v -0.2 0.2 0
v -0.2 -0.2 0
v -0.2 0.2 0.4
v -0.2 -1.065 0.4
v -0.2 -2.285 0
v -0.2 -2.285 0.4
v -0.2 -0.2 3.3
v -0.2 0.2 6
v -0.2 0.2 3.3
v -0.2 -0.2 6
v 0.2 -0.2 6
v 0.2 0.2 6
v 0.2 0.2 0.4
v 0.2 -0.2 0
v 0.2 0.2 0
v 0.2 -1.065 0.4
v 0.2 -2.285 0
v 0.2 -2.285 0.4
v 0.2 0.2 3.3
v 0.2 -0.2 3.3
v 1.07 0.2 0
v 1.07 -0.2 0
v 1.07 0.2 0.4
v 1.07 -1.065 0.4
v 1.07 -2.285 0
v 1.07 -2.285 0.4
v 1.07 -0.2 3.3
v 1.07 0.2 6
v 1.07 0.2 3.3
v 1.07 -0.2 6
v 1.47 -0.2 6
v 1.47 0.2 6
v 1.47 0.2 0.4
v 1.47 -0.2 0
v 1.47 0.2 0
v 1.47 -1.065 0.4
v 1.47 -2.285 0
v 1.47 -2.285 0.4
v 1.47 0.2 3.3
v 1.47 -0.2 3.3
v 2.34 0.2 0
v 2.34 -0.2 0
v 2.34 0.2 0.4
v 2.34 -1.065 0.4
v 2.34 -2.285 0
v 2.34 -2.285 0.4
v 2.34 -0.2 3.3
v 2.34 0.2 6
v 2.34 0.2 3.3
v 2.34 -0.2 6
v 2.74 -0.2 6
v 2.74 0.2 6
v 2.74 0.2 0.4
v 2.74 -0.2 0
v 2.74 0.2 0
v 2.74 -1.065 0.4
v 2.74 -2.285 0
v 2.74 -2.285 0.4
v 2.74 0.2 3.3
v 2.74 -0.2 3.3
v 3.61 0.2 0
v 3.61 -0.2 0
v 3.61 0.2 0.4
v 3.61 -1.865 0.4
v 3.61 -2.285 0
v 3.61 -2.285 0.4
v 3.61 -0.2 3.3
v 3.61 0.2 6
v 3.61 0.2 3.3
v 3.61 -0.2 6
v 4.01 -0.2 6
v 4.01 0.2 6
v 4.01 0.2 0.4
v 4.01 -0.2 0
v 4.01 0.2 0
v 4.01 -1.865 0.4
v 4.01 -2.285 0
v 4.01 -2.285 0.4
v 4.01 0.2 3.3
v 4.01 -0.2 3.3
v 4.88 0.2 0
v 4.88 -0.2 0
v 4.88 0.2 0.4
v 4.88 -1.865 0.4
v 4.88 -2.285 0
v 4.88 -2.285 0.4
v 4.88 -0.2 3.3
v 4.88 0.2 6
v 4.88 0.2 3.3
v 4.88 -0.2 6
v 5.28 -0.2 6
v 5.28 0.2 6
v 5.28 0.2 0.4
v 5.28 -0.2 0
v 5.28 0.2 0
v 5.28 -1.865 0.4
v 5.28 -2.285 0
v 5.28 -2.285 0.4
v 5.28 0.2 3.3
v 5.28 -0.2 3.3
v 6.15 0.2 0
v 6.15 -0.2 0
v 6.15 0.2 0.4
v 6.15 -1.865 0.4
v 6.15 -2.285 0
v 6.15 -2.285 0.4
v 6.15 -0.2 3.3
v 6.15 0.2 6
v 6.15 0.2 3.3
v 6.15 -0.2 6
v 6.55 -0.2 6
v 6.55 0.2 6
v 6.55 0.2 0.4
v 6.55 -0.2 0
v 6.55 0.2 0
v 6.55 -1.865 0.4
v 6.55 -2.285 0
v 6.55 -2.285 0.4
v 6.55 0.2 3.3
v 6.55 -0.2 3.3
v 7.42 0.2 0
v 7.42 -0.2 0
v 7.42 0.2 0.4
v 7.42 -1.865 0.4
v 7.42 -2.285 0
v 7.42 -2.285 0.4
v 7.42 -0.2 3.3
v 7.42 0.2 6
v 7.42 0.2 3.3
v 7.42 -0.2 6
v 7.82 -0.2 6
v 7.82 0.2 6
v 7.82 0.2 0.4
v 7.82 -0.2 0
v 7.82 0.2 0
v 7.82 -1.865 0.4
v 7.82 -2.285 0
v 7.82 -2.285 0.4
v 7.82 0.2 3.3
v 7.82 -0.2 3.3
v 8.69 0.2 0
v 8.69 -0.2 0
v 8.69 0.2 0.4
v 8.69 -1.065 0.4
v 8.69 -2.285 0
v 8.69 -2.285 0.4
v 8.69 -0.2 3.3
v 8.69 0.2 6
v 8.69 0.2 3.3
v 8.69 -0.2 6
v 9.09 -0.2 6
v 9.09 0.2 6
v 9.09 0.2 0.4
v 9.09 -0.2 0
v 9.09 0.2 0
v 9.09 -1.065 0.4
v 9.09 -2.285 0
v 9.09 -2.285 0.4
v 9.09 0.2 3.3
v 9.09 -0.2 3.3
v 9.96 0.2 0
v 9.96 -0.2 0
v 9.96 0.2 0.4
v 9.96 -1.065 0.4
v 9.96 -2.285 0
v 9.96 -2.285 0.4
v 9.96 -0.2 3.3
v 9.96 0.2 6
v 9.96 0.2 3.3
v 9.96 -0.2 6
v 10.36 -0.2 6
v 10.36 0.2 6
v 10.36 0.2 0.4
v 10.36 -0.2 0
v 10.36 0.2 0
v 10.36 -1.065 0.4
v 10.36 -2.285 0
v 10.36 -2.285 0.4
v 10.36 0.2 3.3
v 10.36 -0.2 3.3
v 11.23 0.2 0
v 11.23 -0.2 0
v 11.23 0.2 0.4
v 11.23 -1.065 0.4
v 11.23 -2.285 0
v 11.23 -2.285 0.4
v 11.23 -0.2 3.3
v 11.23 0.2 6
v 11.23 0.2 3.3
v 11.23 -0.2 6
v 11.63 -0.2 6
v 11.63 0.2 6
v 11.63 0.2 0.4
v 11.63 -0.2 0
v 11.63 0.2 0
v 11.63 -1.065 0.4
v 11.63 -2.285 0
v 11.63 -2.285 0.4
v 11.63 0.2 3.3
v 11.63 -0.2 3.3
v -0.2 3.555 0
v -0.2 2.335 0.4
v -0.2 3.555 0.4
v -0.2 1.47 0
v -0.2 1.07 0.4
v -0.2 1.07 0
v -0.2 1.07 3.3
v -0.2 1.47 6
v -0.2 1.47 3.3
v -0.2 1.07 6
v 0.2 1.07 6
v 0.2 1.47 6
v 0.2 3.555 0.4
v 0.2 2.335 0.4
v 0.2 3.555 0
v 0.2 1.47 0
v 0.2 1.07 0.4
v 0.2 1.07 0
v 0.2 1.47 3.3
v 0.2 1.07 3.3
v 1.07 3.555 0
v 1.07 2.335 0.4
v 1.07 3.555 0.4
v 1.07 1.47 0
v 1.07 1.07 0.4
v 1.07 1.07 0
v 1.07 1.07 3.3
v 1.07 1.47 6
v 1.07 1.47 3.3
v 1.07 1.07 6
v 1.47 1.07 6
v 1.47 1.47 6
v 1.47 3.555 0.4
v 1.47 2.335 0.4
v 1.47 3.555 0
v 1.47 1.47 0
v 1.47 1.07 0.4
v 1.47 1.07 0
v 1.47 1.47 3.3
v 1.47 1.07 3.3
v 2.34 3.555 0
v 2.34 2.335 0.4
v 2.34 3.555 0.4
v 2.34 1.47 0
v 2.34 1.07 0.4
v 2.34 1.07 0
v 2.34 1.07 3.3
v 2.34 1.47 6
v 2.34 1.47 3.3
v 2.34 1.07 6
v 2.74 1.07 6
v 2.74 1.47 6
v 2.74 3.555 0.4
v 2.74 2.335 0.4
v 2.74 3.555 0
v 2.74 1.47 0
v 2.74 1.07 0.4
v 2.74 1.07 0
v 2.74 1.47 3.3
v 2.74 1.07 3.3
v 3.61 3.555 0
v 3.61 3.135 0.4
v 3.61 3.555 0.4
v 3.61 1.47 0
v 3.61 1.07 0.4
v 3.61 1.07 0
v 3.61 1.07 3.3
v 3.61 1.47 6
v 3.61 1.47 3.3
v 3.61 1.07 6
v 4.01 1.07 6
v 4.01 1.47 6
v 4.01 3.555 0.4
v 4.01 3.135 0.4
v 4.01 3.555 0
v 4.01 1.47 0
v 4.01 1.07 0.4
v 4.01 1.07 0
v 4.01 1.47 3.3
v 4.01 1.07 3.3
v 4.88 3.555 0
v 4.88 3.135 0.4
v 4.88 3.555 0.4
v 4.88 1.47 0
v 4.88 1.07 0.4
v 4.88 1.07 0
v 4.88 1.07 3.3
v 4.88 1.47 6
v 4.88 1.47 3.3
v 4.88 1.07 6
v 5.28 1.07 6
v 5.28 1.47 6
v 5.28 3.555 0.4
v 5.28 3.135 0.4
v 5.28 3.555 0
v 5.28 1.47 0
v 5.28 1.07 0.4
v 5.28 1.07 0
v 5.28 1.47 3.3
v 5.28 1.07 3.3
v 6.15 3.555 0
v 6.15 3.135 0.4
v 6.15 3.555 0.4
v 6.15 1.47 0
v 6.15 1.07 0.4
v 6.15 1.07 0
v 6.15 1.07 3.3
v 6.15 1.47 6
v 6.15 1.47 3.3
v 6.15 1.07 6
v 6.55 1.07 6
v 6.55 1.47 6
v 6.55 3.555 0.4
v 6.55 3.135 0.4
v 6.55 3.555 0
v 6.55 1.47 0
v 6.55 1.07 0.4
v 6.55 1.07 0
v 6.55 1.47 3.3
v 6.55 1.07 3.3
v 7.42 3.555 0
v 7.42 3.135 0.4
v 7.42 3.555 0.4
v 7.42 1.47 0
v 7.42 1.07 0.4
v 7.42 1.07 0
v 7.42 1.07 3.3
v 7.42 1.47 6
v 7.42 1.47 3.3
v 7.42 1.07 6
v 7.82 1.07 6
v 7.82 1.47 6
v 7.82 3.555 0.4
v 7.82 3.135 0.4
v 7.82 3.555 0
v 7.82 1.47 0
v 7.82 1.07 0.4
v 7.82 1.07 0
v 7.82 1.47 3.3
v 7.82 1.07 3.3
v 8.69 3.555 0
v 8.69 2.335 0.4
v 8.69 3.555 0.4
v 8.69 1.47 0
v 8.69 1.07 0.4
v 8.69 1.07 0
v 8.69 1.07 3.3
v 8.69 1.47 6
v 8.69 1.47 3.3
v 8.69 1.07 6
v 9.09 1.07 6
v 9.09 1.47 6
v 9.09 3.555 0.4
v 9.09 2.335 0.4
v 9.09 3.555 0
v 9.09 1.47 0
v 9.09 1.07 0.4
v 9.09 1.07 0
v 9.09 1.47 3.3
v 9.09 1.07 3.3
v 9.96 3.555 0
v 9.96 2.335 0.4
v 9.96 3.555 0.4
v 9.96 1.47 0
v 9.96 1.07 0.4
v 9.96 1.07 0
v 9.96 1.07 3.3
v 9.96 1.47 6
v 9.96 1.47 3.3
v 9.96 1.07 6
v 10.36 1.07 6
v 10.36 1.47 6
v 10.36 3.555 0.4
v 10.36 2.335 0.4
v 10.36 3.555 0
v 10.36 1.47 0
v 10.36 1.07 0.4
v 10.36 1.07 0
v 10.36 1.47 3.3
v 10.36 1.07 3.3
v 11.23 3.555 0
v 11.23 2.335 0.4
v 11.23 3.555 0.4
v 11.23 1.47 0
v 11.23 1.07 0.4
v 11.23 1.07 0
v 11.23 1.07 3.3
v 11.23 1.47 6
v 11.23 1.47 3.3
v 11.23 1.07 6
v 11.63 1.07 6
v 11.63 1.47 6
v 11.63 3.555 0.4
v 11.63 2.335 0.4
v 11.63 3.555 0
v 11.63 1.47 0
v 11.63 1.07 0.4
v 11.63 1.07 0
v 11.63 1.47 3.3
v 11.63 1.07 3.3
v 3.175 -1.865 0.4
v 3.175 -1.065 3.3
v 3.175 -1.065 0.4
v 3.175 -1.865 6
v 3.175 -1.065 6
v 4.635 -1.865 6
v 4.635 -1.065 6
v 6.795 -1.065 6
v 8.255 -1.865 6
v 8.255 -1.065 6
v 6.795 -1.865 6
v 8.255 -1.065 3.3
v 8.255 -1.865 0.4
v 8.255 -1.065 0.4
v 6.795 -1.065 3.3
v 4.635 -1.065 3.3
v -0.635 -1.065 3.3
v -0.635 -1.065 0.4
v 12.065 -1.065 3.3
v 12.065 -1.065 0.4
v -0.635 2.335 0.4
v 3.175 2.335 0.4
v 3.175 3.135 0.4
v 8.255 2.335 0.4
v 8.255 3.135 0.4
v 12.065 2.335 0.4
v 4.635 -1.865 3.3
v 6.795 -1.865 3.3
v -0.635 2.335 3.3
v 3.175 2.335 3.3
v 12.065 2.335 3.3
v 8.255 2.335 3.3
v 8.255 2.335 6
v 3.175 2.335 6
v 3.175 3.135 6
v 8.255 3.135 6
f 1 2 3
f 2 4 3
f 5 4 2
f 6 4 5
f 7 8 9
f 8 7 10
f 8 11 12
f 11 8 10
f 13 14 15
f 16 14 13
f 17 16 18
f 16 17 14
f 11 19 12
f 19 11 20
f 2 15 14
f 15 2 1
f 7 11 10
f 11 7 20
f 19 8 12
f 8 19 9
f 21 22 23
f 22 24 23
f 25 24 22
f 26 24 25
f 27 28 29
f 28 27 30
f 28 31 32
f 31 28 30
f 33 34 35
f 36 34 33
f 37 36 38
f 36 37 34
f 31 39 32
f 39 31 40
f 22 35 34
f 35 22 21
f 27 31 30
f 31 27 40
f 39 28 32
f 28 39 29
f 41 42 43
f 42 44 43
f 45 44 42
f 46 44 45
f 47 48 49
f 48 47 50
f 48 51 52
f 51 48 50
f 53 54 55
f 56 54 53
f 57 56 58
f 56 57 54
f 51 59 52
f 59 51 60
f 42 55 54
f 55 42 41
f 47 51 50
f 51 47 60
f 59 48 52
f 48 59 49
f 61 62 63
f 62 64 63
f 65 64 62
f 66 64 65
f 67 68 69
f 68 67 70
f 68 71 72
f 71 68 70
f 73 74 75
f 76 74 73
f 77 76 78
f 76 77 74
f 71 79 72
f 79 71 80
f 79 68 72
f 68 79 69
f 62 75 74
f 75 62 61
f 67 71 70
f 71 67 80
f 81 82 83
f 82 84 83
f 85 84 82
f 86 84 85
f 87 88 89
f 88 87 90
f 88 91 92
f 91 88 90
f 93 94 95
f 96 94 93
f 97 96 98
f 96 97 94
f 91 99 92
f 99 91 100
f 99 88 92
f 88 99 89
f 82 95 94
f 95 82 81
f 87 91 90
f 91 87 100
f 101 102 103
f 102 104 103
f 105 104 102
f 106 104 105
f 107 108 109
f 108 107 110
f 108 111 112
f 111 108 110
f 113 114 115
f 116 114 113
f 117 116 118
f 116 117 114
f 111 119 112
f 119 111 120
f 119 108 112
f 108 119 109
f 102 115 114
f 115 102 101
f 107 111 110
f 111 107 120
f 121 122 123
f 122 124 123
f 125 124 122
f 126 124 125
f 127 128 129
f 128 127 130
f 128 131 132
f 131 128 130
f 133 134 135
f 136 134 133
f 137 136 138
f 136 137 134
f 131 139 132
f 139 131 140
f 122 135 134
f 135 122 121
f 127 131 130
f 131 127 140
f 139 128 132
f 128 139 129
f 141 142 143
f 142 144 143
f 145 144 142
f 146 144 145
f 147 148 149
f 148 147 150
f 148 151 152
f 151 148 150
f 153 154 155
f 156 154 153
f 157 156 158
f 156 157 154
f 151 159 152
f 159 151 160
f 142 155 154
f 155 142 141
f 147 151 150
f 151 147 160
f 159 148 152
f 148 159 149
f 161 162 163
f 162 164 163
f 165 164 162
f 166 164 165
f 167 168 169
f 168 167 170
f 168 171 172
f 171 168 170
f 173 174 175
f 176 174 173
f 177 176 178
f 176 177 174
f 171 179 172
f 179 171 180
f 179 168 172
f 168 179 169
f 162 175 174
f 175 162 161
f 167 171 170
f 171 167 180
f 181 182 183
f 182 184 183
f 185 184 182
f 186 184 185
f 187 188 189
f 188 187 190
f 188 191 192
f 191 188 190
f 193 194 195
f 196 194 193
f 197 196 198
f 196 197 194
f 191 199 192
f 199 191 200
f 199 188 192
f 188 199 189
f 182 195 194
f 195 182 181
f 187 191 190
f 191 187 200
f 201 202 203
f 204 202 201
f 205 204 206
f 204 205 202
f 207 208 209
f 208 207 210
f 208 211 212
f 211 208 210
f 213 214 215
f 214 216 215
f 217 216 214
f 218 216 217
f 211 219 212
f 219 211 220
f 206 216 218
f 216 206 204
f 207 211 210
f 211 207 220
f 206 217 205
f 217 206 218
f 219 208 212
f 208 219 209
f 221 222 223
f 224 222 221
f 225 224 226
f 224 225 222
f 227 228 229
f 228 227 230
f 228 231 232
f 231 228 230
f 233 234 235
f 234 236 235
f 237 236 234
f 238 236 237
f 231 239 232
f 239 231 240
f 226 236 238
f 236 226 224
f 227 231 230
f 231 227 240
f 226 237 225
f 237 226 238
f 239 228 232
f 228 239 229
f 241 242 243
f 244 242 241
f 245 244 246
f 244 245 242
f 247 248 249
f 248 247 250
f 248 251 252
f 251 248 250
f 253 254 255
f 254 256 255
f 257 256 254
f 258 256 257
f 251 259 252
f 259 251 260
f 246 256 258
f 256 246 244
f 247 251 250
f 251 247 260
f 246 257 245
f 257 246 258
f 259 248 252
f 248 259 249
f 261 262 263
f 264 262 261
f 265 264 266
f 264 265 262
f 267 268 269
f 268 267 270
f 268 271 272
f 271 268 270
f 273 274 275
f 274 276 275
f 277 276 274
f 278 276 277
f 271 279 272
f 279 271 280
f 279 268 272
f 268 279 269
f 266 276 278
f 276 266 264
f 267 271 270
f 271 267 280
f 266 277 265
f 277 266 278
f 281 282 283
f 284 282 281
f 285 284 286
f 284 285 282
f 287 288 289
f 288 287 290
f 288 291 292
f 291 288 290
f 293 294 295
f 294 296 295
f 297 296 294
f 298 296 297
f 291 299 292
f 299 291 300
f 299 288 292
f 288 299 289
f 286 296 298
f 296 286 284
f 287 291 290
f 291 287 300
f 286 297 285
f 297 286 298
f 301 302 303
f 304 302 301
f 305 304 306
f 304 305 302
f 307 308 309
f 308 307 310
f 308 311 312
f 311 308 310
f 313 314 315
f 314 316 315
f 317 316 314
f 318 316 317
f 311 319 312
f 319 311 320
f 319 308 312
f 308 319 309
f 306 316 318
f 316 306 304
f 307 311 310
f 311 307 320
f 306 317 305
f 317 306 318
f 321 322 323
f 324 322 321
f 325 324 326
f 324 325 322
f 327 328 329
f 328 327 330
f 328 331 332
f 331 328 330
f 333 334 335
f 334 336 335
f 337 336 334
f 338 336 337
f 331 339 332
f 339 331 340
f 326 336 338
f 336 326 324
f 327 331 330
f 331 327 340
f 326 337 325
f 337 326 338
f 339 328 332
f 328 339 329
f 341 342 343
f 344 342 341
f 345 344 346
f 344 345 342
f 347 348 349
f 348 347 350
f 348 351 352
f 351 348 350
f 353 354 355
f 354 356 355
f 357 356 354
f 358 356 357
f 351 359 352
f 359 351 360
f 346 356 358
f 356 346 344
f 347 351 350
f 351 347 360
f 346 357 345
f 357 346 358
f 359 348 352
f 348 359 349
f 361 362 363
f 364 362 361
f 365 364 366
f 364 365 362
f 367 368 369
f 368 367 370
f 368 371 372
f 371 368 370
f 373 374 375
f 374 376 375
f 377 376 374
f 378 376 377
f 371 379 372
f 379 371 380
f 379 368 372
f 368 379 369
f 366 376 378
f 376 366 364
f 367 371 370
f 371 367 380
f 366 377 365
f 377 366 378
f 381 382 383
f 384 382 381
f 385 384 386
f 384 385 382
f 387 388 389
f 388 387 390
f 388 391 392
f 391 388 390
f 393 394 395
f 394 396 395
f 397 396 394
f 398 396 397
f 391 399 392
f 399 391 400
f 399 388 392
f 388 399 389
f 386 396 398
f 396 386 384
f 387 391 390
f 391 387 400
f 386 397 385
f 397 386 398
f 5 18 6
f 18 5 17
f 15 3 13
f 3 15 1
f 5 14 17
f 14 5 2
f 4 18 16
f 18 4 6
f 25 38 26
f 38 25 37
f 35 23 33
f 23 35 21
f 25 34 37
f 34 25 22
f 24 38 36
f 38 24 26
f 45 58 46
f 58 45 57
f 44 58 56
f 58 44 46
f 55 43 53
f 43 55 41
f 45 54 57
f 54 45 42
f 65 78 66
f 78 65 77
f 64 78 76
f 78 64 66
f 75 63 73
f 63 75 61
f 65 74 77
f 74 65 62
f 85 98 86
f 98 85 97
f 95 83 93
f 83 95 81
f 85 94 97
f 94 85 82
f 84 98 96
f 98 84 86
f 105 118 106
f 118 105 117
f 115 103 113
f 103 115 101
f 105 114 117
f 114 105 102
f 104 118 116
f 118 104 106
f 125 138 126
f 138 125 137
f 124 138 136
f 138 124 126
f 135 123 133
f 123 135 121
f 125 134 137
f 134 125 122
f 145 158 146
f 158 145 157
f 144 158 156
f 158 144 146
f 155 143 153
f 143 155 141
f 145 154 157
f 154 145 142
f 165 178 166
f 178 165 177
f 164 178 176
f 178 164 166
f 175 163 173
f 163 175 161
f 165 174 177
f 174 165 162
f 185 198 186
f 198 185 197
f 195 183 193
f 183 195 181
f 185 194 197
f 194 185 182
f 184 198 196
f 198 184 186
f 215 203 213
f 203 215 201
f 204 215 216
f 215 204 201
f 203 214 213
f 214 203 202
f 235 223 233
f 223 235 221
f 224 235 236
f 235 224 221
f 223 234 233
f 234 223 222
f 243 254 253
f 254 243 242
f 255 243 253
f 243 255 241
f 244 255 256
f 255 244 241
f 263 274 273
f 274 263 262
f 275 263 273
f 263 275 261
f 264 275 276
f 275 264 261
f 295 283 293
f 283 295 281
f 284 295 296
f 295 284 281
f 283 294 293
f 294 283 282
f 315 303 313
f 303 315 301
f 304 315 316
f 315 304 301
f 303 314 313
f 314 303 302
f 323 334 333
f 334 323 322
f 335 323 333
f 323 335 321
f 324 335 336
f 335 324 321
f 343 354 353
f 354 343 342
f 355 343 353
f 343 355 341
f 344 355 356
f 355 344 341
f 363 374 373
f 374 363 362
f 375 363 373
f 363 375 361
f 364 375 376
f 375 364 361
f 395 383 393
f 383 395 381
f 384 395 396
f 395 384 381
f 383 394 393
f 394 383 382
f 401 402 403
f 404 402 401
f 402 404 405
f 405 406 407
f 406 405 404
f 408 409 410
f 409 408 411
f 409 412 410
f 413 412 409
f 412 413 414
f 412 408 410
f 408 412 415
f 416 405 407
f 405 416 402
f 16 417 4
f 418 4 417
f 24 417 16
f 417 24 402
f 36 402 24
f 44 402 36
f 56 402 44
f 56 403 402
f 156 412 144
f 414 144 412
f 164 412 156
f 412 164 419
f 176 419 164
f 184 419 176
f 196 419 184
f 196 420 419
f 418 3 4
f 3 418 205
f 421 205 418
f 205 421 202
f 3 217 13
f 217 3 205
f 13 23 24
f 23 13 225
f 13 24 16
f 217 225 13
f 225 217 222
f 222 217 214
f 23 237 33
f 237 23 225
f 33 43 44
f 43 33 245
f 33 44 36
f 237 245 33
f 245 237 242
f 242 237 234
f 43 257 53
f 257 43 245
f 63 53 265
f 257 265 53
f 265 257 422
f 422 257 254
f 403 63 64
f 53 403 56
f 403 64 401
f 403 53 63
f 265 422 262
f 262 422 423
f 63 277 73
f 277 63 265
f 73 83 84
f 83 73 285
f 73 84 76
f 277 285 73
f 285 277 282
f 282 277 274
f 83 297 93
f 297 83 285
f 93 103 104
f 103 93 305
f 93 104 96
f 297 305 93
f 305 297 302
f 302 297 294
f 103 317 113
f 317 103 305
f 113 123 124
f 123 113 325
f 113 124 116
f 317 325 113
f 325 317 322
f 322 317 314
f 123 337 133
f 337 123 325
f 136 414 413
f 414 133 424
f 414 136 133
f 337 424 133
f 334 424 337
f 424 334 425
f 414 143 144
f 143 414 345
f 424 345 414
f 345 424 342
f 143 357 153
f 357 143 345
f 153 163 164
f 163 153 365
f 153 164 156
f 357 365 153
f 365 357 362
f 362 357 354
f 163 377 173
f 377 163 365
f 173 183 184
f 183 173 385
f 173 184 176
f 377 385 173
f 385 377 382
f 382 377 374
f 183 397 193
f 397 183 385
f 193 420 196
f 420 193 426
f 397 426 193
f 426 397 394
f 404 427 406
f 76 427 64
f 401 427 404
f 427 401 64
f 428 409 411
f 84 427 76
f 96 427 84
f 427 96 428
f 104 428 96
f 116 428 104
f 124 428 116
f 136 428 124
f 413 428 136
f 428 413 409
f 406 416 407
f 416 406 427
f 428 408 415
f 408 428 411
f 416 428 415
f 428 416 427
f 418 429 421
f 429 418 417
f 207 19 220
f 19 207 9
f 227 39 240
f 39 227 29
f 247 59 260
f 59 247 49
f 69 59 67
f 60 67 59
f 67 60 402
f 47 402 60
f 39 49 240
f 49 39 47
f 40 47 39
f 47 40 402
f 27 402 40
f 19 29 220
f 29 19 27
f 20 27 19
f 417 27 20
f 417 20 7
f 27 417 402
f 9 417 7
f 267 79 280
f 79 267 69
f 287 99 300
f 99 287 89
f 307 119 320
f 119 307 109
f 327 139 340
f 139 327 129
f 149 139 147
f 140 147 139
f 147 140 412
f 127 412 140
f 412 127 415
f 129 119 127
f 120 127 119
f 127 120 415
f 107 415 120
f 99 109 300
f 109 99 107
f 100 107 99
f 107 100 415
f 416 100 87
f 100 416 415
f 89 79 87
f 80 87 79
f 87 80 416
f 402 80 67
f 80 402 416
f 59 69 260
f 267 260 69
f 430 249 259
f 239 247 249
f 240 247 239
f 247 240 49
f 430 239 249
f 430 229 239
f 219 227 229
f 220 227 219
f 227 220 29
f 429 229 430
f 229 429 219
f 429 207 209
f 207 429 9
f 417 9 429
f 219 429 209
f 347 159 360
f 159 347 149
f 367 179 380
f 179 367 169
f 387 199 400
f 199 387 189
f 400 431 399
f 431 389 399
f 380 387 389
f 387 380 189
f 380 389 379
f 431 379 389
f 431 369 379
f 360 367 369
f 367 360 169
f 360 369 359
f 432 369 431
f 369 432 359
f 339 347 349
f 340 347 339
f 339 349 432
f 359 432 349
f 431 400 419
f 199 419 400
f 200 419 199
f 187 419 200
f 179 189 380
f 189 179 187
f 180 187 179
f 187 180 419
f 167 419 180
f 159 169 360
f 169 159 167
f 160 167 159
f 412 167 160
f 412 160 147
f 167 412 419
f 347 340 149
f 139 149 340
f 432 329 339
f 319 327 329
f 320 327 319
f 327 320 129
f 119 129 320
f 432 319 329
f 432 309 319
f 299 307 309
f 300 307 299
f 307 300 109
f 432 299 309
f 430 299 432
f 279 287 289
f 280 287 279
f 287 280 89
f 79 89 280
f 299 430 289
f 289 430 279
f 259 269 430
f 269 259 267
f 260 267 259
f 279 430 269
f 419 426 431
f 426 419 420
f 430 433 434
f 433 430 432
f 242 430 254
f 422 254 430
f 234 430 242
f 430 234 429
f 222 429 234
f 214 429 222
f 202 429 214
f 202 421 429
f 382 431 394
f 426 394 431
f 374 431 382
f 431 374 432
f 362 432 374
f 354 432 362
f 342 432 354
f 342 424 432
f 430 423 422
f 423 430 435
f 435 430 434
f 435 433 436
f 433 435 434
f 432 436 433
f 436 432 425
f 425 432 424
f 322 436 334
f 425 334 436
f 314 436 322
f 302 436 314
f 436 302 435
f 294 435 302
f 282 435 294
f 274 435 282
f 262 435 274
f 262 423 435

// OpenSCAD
pin_thickness = 0.4;
pin_step = 1.27;
hor_pin_length = 2.285;

pin_height = 6;
pins_per_row = 10;

plastic_height = 2.9;
plastic_width = 3.4;

notch_width = 5.08;
window_width = 2.16;
notch_thickness = 0.8;

module pin(_x,_y,_z)
{
	translate([-_x/2,-_y/2,0])
		cube([_x,_y,_z]);
};

module pins_array(_cnt, _distance, _height)
{
	if (_cnt>0)
	{
		for (_i = [0:_cnt-1])
		{
			translate([_distance*_i,0,0])
				pin(pin_thickness,pin_thickness,_height);
		}
	}
}


union()
{   
    // Array1 of pins
    pins_array(pins_per_row,pin_step,pin_height);
    // Array2 of pins
    translate([0,pin_step,0])
        pins_array(pins_per_row,pin_step,pin_height);
    // Array3 of pins
    translate([0,pin_thickness/2,pin_thickness/2])
    rotate(90,[1,0,0])
    pins_array(pins_per_row,pin_step,hor_pin_length+pin_thickness/2);
    // Array4 of pins
    translate([0,pin_step+hor_pin_length,pin_thickness/2])
    rotate(90,[1,0,0])
    pins_array(pins_per_row,pin_step,hor_pin_length+pin_thickness/2);
 
    // Draw case
    translate([-pin_step/2,-plastic_width/2+pin_step/2,pin_thickness])
    cube([pins_per_row*pin_step,plastic_width,plastic_height]);
    
    // Draw notch1
    translate([pin_step*(pins_per_row-1)/2-notch_width/2,(plastic_width-pin_step)/2+pin_step,pin_thickness])
    cube([notch_width,notch_thickness,pin_height-pin_thickness]);

    // Draw notch2
    difference()
    {
    translate([pin_step*(pins_per_row-1)/2-notch_width/2,-(plastic_width-pin_step)/2-notch_thickness,pin_thickness])
    cube([notch_width,notch_thickness,pin_height-pin_thickness]);

    translate([pin_step*(pins_per_row-1)/2-window_width/2,-(plastic_width-pin_step)/2-notch_thickness-0.05,pin_thickness+plastic_height])
    cube([window_width,notch_thickness+0.1,pin_height-pin_thickness-plastic_height+0.1]);
    }
};
